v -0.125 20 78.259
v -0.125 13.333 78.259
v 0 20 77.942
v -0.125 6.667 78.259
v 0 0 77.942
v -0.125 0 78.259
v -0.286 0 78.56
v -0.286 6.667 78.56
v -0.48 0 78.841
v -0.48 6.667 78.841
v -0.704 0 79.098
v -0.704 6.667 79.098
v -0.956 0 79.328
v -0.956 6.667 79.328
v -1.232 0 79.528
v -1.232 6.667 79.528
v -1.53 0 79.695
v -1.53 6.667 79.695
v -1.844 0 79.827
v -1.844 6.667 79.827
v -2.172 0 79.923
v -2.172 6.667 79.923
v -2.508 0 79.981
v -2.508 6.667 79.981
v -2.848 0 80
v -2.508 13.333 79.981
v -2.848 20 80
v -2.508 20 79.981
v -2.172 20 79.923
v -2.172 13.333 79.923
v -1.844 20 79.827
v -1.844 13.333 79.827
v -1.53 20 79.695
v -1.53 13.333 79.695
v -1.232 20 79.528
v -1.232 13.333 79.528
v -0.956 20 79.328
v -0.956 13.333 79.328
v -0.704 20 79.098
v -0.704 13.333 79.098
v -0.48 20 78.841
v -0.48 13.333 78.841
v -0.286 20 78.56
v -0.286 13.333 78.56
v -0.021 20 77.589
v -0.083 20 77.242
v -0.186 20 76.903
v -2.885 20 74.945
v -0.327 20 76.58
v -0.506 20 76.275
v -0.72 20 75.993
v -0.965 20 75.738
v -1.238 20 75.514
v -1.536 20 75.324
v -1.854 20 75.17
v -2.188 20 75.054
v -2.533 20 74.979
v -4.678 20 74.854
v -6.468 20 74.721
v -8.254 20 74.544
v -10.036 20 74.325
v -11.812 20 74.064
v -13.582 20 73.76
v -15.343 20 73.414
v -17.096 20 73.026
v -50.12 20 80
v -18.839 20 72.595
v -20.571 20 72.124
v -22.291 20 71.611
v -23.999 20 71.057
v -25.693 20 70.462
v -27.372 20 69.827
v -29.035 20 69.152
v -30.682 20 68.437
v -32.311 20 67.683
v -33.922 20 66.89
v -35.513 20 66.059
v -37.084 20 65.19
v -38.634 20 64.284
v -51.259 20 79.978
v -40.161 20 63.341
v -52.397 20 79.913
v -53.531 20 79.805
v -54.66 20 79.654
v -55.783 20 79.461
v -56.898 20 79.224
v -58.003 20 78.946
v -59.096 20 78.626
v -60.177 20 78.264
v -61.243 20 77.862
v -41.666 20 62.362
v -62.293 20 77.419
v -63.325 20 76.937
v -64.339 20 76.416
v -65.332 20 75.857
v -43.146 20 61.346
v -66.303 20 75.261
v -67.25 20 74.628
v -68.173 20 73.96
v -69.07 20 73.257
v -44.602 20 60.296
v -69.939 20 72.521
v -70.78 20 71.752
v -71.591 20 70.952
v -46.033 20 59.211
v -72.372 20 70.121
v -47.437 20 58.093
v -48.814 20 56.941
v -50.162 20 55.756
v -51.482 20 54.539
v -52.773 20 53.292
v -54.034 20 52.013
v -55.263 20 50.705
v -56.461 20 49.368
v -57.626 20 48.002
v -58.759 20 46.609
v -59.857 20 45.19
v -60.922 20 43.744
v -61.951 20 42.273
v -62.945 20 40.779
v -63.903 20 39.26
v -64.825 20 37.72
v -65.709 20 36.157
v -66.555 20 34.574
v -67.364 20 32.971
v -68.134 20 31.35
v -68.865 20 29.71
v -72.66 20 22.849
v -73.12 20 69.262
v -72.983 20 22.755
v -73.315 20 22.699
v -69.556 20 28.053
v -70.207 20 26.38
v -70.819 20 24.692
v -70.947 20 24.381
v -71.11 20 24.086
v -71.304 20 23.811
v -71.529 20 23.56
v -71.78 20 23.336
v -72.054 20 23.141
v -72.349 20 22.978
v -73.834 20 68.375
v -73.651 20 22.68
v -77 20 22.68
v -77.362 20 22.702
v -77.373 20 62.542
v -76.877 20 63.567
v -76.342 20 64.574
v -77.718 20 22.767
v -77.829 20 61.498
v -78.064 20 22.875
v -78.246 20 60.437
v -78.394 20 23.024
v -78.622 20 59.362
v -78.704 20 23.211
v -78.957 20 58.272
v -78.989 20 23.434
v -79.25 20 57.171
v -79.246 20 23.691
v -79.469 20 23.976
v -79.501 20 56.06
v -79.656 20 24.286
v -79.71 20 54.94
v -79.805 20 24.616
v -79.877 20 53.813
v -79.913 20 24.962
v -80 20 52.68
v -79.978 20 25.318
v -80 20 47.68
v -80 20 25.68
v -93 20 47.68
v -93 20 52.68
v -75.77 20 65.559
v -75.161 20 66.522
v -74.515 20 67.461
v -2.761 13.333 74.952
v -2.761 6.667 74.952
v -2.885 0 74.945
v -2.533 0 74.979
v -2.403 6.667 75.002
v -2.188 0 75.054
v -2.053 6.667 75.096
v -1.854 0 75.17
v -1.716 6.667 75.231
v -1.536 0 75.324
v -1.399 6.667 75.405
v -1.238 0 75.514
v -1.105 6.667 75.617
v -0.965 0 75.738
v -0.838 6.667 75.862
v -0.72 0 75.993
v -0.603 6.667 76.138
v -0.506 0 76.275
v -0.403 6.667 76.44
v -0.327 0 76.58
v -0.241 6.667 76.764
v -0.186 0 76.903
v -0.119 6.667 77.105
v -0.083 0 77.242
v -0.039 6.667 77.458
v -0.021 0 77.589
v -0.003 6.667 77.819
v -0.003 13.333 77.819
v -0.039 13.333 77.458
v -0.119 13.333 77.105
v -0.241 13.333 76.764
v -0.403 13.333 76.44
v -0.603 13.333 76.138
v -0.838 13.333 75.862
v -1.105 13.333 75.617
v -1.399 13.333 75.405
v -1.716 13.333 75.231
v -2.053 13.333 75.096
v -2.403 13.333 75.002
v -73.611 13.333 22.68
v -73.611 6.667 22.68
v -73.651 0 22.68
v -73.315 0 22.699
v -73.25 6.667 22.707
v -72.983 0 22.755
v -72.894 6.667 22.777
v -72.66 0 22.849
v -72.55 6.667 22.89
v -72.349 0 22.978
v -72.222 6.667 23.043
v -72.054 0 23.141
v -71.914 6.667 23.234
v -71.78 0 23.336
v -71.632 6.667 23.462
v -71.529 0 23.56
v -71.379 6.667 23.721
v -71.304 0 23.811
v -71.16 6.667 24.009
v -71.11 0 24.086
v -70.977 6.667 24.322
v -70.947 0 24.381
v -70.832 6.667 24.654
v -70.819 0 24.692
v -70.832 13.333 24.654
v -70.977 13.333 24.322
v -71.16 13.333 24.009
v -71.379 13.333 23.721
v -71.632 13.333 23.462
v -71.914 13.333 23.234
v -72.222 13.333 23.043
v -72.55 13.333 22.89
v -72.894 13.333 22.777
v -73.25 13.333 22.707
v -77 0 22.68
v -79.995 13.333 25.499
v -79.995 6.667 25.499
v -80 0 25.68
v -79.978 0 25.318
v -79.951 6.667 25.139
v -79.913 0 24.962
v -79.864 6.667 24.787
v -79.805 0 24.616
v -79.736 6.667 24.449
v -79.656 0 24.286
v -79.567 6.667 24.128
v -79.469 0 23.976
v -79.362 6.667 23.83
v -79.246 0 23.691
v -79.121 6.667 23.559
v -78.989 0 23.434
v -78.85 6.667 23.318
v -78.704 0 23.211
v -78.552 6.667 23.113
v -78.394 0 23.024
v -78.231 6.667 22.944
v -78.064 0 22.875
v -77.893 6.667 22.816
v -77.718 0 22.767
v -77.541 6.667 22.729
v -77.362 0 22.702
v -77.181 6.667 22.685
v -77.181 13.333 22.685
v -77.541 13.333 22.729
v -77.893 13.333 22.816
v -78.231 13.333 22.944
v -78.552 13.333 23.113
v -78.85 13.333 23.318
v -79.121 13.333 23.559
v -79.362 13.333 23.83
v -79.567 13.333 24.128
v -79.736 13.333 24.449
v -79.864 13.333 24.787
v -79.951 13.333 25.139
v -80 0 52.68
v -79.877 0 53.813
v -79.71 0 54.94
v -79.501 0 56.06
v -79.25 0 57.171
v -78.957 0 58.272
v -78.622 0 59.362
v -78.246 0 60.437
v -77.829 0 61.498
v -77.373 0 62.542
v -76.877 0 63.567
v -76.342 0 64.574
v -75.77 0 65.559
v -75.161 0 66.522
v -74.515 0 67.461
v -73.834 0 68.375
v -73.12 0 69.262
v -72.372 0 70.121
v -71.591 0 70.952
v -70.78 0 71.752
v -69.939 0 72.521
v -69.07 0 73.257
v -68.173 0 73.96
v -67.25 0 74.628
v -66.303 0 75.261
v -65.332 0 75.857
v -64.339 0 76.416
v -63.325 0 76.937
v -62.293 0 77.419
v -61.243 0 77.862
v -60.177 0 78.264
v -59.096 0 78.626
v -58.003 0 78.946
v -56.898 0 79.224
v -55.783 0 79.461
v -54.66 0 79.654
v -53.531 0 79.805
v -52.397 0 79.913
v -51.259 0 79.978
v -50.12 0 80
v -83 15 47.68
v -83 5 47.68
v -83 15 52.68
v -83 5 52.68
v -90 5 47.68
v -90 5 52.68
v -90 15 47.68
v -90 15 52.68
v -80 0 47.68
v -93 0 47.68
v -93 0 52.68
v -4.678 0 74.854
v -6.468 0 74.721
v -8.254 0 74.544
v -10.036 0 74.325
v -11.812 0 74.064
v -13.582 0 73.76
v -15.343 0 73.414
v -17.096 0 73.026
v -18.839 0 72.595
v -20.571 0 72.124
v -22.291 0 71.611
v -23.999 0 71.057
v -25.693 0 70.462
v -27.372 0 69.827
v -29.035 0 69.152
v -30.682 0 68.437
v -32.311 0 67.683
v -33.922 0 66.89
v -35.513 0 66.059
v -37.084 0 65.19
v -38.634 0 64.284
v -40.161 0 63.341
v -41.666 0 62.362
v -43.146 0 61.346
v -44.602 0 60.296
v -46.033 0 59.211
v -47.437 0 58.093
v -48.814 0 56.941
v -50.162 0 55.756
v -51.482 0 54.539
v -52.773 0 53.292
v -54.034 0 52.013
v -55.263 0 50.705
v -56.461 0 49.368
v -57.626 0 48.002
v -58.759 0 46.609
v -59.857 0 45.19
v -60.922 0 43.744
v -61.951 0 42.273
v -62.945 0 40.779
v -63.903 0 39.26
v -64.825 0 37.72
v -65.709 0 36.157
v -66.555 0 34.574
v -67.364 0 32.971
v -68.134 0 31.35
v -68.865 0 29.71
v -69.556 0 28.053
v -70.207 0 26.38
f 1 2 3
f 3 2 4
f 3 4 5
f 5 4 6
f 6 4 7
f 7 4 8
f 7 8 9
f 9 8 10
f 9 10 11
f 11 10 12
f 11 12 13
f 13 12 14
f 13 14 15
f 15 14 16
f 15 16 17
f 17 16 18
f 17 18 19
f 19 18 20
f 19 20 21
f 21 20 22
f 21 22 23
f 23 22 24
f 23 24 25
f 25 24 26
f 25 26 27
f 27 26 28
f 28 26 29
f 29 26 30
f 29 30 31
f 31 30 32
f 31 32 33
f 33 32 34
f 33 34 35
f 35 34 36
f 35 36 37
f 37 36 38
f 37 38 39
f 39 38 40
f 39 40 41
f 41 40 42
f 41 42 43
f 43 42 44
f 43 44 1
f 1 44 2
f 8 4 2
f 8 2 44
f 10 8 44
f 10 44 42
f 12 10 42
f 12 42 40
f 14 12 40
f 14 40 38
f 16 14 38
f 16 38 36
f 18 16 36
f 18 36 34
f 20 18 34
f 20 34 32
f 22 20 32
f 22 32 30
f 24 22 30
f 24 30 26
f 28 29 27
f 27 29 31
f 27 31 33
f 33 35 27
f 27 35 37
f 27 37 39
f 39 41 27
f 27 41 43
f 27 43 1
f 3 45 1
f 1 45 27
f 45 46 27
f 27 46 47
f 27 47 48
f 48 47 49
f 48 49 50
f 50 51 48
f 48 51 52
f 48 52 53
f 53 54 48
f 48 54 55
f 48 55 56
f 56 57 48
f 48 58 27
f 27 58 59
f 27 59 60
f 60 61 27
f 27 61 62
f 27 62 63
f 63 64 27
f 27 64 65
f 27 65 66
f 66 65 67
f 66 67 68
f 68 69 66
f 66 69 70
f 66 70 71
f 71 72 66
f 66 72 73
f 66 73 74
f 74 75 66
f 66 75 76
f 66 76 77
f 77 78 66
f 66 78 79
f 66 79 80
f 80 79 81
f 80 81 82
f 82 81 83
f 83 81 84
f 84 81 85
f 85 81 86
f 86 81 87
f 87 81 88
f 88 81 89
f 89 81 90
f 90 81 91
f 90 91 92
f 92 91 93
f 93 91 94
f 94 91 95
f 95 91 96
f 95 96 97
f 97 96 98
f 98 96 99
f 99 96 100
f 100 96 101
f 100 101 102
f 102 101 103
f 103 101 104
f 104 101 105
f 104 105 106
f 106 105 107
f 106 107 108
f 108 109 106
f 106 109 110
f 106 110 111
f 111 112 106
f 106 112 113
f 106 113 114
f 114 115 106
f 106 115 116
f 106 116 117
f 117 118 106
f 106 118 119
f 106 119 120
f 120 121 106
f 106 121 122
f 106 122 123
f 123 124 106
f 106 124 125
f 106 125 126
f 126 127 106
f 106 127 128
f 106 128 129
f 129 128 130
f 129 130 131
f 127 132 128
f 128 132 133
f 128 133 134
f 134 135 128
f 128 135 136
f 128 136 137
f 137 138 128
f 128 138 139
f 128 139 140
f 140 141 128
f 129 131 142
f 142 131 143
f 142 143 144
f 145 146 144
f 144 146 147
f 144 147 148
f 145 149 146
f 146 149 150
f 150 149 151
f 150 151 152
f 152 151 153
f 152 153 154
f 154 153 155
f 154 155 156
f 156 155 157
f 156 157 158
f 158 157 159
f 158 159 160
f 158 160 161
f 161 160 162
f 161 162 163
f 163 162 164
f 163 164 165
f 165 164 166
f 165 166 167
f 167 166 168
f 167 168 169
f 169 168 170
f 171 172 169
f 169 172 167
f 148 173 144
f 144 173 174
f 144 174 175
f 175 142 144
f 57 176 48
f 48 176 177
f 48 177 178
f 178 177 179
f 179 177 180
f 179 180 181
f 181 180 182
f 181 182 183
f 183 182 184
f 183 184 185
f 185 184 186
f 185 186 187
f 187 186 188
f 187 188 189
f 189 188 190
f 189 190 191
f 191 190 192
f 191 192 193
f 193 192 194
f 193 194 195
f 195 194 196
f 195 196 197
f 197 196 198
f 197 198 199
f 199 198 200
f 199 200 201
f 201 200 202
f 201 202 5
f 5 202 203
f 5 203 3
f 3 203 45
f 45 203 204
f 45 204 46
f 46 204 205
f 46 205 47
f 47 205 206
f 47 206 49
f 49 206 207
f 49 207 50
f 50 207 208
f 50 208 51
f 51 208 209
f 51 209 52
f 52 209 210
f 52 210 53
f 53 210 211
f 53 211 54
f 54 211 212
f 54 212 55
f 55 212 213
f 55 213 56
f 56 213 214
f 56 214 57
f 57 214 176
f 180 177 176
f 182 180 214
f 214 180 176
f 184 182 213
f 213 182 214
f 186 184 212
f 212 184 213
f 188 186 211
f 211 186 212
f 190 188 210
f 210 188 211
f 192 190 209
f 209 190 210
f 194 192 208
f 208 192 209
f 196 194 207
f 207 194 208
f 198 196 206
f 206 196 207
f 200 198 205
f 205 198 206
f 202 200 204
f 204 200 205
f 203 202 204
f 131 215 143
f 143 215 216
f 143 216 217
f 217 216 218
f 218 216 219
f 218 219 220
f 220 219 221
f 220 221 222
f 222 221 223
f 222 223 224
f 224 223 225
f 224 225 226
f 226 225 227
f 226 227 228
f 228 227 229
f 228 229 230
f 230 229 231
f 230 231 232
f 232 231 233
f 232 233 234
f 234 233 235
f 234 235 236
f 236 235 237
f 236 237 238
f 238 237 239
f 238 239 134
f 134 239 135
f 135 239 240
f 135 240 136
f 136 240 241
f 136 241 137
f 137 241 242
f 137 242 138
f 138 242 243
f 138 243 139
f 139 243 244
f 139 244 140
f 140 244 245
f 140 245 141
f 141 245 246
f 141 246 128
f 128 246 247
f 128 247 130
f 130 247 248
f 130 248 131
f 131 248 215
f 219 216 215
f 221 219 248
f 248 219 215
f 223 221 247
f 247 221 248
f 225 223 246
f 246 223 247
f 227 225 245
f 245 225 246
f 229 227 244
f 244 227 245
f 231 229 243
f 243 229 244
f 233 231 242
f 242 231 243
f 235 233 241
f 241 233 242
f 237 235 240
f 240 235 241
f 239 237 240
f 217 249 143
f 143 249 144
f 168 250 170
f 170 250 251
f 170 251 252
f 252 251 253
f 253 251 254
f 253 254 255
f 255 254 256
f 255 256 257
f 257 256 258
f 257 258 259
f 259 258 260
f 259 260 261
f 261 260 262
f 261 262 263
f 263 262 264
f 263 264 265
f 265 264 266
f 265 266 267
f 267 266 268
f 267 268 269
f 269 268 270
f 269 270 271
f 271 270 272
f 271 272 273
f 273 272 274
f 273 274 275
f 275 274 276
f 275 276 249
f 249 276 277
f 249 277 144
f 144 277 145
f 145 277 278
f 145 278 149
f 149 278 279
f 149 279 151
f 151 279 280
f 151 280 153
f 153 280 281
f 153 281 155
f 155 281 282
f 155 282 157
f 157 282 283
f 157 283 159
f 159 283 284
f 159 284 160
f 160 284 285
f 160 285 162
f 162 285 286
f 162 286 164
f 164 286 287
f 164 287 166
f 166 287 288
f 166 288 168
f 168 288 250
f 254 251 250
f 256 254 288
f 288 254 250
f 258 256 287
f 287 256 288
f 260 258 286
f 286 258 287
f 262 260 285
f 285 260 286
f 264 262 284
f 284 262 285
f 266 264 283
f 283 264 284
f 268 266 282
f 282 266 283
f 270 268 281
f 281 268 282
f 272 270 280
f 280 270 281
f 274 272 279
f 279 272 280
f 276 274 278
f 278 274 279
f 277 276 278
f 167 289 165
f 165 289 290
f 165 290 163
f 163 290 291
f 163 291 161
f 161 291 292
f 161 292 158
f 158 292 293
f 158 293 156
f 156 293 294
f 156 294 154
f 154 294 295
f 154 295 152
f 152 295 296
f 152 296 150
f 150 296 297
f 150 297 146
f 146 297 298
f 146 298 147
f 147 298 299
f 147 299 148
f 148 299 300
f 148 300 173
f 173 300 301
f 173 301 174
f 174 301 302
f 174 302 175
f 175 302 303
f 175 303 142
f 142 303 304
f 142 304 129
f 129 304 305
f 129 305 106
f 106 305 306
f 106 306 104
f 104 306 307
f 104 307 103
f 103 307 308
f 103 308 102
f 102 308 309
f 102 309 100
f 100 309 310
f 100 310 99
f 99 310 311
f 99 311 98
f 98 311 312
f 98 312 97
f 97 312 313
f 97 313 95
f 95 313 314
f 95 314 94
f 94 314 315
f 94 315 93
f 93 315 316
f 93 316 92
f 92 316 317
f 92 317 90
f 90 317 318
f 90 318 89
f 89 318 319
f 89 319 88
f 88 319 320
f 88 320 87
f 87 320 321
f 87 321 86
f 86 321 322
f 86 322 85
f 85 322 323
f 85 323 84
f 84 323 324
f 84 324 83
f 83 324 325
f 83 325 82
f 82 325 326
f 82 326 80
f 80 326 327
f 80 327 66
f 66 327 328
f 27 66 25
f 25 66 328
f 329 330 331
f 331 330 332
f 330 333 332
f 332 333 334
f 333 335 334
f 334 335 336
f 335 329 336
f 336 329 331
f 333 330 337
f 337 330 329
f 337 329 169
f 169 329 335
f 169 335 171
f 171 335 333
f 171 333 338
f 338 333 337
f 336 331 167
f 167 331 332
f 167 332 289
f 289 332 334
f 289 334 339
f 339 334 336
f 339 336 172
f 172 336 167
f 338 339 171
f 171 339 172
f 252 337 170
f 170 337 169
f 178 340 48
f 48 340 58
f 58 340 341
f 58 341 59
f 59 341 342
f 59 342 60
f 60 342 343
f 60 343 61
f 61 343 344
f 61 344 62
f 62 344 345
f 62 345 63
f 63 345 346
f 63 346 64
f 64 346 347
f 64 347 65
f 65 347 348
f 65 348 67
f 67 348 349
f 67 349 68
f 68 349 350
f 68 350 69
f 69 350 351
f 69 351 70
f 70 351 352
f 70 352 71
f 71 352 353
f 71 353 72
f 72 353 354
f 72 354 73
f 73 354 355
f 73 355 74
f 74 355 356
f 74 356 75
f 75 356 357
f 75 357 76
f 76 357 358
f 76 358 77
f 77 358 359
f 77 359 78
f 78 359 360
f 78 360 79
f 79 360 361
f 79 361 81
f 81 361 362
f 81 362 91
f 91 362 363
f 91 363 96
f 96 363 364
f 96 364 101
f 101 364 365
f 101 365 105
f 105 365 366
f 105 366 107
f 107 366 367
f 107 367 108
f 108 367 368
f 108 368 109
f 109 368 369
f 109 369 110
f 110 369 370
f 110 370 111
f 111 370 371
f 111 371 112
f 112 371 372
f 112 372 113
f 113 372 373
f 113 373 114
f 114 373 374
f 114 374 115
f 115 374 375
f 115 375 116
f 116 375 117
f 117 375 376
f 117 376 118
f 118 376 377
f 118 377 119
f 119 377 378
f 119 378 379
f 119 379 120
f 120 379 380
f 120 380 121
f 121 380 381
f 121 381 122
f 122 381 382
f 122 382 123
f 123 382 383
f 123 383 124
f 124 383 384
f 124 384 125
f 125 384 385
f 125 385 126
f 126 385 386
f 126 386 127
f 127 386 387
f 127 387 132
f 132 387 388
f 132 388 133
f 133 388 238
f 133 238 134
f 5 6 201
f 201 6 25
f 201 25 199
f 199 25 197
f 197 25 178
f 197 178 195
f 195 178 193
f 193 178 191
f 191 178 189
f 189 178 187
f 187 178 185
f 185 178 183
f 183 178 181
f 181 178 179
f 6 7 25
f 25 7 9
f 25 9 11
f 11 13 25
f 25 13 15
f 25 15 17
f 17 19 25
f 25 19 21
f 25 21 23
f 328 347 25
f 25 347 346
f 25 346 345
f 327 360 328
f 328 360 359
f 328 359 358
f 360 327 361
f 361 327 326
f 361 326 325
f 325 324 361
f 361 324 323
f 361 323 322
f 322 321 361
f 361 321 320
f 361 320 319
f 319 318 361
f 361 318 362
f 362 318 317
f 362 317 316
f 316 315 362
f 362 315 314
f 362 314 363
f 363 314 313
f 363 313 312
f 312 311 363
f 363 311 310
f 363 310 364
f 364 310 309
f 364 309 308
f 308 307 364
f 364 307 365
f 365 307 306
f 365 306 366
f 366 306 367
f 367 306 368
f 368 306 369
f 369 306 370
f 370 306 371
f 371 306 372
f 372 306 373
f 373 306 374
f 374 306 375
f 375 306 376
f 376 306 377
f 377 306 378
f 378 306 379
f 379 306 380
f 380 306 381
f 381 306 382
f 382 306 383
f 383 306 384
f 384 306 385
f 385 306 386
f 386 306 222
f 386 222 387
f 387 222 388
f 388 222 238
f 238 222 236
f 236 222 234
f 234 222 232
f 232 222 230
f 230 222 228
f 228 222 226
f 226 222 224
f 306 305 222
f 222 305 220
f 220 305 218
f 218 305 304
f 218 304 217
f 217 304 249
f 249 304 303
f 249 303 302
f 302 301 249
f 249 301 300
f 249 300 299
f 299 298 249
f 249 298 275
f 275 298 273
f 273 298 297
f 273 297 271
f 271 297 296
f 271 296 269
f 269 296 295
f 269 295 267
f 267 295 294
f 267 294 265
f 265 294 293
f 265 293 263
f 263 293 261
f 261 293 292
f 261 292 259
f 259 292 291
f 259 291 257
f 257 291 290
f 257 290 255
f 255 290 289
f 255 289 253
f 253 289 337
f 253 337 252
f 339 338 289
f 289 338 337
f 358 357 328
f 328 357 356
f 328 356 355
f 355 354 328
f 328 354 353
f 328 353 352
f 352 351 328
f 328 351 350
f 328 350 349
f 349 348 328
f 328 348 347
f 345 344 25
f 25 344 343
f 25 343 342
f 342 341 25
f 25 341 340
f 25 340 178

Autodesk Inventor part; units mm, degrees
ref_plane "YZ Plane" through (0, 0, 0) normal (1, 0, 0) x (0, 1, 0)
ref_plane "XZ Plane" through (0, 0, 0) normal (0, 1, 0) x (-1, 0, 0)
ref_plane "XY Plane" through (0, 0, 0) normal (0, 0, 1) x (1, 0, 0)
sketch "Boceto1" plane through (0, 0, 0) normal (0, 1, 0) x (-1, 0, 0)
  line L0 (80, 80) -> (0, 80)
  line L1 (0, 80) -> (0, 75)
  line L2 (80, 47.68) -> (80, 52.68)
  line L3 (80, 47.68) -> (80, 22.68)
  line L4 (80, 22.68) -> (75, 22.68)
  line L5 (75, 22.68) -> (71.4886, 22.68)
  line L6 (80, 80) -> (80, 52.68)
  arc A0 (71.4886, 22.68) -> (0, 75) centre (0, 0) ccw
  dimension "d4" = 5
  dimension "d5" = 25
extrude "Extrusión1" add sketch "Boceto1" along normal blind 20
sketch "Boceto2" plane through (-80, 0, 22.68) normal (-1, 0, 0) x (0, 0, 1)
  line L0 (0, 0) -> (52.32, 0) projected
  line L1 (25, 0) -> (30, 0)
  line L2 (30, 0) -> (30, 20)
  line L3 (0, 20) -> (52.32, 20) projected
  line L4 (25, 0) -> (25, 20)
  line L5 (25, 20) -> (30, 20)
  point P0 (-22.68, 0)
  dimension "d8" = 47.68
  dimension "d9" = 5
extrude "Extrusión2" add sketch "Boceto2" along normal blind 13
sketch "Boceto3" plane through (-80, 0, 47.68) normal (0, 0, -1) x (-1, 0, 0)
  line L0 (0, 0) -> (13, 0) projected
  line L1 (0, 0) -> (3, 0)
  line L2 (0, 20) -> (13, 20) projected
  line L3 (3, 15) -> (10, 15)
  line L4 (10, 15) -> (10, 5)
  line L5 (10, 5) -> (3, 5)
  line L6 (3, 5) -> (3, 15)
  point P0 (-80, 0)
  dimension "d12" = 3
  dimension "d14" = 7
  dimension "d15" = 10
extrude "Extrusión3" cut sketch "Boceto3" against normal blind 5
fillet "Empalme1" radius 30 1 edges at (-80, 10, 80)
fillet "Empalme2" radius 3 4 edges at (-80, 10, 22.68) (-71.4886, 10, 22.68) (0, 10, 75) (0, 10, 80)
properties part number "Positioner_Adapter"
